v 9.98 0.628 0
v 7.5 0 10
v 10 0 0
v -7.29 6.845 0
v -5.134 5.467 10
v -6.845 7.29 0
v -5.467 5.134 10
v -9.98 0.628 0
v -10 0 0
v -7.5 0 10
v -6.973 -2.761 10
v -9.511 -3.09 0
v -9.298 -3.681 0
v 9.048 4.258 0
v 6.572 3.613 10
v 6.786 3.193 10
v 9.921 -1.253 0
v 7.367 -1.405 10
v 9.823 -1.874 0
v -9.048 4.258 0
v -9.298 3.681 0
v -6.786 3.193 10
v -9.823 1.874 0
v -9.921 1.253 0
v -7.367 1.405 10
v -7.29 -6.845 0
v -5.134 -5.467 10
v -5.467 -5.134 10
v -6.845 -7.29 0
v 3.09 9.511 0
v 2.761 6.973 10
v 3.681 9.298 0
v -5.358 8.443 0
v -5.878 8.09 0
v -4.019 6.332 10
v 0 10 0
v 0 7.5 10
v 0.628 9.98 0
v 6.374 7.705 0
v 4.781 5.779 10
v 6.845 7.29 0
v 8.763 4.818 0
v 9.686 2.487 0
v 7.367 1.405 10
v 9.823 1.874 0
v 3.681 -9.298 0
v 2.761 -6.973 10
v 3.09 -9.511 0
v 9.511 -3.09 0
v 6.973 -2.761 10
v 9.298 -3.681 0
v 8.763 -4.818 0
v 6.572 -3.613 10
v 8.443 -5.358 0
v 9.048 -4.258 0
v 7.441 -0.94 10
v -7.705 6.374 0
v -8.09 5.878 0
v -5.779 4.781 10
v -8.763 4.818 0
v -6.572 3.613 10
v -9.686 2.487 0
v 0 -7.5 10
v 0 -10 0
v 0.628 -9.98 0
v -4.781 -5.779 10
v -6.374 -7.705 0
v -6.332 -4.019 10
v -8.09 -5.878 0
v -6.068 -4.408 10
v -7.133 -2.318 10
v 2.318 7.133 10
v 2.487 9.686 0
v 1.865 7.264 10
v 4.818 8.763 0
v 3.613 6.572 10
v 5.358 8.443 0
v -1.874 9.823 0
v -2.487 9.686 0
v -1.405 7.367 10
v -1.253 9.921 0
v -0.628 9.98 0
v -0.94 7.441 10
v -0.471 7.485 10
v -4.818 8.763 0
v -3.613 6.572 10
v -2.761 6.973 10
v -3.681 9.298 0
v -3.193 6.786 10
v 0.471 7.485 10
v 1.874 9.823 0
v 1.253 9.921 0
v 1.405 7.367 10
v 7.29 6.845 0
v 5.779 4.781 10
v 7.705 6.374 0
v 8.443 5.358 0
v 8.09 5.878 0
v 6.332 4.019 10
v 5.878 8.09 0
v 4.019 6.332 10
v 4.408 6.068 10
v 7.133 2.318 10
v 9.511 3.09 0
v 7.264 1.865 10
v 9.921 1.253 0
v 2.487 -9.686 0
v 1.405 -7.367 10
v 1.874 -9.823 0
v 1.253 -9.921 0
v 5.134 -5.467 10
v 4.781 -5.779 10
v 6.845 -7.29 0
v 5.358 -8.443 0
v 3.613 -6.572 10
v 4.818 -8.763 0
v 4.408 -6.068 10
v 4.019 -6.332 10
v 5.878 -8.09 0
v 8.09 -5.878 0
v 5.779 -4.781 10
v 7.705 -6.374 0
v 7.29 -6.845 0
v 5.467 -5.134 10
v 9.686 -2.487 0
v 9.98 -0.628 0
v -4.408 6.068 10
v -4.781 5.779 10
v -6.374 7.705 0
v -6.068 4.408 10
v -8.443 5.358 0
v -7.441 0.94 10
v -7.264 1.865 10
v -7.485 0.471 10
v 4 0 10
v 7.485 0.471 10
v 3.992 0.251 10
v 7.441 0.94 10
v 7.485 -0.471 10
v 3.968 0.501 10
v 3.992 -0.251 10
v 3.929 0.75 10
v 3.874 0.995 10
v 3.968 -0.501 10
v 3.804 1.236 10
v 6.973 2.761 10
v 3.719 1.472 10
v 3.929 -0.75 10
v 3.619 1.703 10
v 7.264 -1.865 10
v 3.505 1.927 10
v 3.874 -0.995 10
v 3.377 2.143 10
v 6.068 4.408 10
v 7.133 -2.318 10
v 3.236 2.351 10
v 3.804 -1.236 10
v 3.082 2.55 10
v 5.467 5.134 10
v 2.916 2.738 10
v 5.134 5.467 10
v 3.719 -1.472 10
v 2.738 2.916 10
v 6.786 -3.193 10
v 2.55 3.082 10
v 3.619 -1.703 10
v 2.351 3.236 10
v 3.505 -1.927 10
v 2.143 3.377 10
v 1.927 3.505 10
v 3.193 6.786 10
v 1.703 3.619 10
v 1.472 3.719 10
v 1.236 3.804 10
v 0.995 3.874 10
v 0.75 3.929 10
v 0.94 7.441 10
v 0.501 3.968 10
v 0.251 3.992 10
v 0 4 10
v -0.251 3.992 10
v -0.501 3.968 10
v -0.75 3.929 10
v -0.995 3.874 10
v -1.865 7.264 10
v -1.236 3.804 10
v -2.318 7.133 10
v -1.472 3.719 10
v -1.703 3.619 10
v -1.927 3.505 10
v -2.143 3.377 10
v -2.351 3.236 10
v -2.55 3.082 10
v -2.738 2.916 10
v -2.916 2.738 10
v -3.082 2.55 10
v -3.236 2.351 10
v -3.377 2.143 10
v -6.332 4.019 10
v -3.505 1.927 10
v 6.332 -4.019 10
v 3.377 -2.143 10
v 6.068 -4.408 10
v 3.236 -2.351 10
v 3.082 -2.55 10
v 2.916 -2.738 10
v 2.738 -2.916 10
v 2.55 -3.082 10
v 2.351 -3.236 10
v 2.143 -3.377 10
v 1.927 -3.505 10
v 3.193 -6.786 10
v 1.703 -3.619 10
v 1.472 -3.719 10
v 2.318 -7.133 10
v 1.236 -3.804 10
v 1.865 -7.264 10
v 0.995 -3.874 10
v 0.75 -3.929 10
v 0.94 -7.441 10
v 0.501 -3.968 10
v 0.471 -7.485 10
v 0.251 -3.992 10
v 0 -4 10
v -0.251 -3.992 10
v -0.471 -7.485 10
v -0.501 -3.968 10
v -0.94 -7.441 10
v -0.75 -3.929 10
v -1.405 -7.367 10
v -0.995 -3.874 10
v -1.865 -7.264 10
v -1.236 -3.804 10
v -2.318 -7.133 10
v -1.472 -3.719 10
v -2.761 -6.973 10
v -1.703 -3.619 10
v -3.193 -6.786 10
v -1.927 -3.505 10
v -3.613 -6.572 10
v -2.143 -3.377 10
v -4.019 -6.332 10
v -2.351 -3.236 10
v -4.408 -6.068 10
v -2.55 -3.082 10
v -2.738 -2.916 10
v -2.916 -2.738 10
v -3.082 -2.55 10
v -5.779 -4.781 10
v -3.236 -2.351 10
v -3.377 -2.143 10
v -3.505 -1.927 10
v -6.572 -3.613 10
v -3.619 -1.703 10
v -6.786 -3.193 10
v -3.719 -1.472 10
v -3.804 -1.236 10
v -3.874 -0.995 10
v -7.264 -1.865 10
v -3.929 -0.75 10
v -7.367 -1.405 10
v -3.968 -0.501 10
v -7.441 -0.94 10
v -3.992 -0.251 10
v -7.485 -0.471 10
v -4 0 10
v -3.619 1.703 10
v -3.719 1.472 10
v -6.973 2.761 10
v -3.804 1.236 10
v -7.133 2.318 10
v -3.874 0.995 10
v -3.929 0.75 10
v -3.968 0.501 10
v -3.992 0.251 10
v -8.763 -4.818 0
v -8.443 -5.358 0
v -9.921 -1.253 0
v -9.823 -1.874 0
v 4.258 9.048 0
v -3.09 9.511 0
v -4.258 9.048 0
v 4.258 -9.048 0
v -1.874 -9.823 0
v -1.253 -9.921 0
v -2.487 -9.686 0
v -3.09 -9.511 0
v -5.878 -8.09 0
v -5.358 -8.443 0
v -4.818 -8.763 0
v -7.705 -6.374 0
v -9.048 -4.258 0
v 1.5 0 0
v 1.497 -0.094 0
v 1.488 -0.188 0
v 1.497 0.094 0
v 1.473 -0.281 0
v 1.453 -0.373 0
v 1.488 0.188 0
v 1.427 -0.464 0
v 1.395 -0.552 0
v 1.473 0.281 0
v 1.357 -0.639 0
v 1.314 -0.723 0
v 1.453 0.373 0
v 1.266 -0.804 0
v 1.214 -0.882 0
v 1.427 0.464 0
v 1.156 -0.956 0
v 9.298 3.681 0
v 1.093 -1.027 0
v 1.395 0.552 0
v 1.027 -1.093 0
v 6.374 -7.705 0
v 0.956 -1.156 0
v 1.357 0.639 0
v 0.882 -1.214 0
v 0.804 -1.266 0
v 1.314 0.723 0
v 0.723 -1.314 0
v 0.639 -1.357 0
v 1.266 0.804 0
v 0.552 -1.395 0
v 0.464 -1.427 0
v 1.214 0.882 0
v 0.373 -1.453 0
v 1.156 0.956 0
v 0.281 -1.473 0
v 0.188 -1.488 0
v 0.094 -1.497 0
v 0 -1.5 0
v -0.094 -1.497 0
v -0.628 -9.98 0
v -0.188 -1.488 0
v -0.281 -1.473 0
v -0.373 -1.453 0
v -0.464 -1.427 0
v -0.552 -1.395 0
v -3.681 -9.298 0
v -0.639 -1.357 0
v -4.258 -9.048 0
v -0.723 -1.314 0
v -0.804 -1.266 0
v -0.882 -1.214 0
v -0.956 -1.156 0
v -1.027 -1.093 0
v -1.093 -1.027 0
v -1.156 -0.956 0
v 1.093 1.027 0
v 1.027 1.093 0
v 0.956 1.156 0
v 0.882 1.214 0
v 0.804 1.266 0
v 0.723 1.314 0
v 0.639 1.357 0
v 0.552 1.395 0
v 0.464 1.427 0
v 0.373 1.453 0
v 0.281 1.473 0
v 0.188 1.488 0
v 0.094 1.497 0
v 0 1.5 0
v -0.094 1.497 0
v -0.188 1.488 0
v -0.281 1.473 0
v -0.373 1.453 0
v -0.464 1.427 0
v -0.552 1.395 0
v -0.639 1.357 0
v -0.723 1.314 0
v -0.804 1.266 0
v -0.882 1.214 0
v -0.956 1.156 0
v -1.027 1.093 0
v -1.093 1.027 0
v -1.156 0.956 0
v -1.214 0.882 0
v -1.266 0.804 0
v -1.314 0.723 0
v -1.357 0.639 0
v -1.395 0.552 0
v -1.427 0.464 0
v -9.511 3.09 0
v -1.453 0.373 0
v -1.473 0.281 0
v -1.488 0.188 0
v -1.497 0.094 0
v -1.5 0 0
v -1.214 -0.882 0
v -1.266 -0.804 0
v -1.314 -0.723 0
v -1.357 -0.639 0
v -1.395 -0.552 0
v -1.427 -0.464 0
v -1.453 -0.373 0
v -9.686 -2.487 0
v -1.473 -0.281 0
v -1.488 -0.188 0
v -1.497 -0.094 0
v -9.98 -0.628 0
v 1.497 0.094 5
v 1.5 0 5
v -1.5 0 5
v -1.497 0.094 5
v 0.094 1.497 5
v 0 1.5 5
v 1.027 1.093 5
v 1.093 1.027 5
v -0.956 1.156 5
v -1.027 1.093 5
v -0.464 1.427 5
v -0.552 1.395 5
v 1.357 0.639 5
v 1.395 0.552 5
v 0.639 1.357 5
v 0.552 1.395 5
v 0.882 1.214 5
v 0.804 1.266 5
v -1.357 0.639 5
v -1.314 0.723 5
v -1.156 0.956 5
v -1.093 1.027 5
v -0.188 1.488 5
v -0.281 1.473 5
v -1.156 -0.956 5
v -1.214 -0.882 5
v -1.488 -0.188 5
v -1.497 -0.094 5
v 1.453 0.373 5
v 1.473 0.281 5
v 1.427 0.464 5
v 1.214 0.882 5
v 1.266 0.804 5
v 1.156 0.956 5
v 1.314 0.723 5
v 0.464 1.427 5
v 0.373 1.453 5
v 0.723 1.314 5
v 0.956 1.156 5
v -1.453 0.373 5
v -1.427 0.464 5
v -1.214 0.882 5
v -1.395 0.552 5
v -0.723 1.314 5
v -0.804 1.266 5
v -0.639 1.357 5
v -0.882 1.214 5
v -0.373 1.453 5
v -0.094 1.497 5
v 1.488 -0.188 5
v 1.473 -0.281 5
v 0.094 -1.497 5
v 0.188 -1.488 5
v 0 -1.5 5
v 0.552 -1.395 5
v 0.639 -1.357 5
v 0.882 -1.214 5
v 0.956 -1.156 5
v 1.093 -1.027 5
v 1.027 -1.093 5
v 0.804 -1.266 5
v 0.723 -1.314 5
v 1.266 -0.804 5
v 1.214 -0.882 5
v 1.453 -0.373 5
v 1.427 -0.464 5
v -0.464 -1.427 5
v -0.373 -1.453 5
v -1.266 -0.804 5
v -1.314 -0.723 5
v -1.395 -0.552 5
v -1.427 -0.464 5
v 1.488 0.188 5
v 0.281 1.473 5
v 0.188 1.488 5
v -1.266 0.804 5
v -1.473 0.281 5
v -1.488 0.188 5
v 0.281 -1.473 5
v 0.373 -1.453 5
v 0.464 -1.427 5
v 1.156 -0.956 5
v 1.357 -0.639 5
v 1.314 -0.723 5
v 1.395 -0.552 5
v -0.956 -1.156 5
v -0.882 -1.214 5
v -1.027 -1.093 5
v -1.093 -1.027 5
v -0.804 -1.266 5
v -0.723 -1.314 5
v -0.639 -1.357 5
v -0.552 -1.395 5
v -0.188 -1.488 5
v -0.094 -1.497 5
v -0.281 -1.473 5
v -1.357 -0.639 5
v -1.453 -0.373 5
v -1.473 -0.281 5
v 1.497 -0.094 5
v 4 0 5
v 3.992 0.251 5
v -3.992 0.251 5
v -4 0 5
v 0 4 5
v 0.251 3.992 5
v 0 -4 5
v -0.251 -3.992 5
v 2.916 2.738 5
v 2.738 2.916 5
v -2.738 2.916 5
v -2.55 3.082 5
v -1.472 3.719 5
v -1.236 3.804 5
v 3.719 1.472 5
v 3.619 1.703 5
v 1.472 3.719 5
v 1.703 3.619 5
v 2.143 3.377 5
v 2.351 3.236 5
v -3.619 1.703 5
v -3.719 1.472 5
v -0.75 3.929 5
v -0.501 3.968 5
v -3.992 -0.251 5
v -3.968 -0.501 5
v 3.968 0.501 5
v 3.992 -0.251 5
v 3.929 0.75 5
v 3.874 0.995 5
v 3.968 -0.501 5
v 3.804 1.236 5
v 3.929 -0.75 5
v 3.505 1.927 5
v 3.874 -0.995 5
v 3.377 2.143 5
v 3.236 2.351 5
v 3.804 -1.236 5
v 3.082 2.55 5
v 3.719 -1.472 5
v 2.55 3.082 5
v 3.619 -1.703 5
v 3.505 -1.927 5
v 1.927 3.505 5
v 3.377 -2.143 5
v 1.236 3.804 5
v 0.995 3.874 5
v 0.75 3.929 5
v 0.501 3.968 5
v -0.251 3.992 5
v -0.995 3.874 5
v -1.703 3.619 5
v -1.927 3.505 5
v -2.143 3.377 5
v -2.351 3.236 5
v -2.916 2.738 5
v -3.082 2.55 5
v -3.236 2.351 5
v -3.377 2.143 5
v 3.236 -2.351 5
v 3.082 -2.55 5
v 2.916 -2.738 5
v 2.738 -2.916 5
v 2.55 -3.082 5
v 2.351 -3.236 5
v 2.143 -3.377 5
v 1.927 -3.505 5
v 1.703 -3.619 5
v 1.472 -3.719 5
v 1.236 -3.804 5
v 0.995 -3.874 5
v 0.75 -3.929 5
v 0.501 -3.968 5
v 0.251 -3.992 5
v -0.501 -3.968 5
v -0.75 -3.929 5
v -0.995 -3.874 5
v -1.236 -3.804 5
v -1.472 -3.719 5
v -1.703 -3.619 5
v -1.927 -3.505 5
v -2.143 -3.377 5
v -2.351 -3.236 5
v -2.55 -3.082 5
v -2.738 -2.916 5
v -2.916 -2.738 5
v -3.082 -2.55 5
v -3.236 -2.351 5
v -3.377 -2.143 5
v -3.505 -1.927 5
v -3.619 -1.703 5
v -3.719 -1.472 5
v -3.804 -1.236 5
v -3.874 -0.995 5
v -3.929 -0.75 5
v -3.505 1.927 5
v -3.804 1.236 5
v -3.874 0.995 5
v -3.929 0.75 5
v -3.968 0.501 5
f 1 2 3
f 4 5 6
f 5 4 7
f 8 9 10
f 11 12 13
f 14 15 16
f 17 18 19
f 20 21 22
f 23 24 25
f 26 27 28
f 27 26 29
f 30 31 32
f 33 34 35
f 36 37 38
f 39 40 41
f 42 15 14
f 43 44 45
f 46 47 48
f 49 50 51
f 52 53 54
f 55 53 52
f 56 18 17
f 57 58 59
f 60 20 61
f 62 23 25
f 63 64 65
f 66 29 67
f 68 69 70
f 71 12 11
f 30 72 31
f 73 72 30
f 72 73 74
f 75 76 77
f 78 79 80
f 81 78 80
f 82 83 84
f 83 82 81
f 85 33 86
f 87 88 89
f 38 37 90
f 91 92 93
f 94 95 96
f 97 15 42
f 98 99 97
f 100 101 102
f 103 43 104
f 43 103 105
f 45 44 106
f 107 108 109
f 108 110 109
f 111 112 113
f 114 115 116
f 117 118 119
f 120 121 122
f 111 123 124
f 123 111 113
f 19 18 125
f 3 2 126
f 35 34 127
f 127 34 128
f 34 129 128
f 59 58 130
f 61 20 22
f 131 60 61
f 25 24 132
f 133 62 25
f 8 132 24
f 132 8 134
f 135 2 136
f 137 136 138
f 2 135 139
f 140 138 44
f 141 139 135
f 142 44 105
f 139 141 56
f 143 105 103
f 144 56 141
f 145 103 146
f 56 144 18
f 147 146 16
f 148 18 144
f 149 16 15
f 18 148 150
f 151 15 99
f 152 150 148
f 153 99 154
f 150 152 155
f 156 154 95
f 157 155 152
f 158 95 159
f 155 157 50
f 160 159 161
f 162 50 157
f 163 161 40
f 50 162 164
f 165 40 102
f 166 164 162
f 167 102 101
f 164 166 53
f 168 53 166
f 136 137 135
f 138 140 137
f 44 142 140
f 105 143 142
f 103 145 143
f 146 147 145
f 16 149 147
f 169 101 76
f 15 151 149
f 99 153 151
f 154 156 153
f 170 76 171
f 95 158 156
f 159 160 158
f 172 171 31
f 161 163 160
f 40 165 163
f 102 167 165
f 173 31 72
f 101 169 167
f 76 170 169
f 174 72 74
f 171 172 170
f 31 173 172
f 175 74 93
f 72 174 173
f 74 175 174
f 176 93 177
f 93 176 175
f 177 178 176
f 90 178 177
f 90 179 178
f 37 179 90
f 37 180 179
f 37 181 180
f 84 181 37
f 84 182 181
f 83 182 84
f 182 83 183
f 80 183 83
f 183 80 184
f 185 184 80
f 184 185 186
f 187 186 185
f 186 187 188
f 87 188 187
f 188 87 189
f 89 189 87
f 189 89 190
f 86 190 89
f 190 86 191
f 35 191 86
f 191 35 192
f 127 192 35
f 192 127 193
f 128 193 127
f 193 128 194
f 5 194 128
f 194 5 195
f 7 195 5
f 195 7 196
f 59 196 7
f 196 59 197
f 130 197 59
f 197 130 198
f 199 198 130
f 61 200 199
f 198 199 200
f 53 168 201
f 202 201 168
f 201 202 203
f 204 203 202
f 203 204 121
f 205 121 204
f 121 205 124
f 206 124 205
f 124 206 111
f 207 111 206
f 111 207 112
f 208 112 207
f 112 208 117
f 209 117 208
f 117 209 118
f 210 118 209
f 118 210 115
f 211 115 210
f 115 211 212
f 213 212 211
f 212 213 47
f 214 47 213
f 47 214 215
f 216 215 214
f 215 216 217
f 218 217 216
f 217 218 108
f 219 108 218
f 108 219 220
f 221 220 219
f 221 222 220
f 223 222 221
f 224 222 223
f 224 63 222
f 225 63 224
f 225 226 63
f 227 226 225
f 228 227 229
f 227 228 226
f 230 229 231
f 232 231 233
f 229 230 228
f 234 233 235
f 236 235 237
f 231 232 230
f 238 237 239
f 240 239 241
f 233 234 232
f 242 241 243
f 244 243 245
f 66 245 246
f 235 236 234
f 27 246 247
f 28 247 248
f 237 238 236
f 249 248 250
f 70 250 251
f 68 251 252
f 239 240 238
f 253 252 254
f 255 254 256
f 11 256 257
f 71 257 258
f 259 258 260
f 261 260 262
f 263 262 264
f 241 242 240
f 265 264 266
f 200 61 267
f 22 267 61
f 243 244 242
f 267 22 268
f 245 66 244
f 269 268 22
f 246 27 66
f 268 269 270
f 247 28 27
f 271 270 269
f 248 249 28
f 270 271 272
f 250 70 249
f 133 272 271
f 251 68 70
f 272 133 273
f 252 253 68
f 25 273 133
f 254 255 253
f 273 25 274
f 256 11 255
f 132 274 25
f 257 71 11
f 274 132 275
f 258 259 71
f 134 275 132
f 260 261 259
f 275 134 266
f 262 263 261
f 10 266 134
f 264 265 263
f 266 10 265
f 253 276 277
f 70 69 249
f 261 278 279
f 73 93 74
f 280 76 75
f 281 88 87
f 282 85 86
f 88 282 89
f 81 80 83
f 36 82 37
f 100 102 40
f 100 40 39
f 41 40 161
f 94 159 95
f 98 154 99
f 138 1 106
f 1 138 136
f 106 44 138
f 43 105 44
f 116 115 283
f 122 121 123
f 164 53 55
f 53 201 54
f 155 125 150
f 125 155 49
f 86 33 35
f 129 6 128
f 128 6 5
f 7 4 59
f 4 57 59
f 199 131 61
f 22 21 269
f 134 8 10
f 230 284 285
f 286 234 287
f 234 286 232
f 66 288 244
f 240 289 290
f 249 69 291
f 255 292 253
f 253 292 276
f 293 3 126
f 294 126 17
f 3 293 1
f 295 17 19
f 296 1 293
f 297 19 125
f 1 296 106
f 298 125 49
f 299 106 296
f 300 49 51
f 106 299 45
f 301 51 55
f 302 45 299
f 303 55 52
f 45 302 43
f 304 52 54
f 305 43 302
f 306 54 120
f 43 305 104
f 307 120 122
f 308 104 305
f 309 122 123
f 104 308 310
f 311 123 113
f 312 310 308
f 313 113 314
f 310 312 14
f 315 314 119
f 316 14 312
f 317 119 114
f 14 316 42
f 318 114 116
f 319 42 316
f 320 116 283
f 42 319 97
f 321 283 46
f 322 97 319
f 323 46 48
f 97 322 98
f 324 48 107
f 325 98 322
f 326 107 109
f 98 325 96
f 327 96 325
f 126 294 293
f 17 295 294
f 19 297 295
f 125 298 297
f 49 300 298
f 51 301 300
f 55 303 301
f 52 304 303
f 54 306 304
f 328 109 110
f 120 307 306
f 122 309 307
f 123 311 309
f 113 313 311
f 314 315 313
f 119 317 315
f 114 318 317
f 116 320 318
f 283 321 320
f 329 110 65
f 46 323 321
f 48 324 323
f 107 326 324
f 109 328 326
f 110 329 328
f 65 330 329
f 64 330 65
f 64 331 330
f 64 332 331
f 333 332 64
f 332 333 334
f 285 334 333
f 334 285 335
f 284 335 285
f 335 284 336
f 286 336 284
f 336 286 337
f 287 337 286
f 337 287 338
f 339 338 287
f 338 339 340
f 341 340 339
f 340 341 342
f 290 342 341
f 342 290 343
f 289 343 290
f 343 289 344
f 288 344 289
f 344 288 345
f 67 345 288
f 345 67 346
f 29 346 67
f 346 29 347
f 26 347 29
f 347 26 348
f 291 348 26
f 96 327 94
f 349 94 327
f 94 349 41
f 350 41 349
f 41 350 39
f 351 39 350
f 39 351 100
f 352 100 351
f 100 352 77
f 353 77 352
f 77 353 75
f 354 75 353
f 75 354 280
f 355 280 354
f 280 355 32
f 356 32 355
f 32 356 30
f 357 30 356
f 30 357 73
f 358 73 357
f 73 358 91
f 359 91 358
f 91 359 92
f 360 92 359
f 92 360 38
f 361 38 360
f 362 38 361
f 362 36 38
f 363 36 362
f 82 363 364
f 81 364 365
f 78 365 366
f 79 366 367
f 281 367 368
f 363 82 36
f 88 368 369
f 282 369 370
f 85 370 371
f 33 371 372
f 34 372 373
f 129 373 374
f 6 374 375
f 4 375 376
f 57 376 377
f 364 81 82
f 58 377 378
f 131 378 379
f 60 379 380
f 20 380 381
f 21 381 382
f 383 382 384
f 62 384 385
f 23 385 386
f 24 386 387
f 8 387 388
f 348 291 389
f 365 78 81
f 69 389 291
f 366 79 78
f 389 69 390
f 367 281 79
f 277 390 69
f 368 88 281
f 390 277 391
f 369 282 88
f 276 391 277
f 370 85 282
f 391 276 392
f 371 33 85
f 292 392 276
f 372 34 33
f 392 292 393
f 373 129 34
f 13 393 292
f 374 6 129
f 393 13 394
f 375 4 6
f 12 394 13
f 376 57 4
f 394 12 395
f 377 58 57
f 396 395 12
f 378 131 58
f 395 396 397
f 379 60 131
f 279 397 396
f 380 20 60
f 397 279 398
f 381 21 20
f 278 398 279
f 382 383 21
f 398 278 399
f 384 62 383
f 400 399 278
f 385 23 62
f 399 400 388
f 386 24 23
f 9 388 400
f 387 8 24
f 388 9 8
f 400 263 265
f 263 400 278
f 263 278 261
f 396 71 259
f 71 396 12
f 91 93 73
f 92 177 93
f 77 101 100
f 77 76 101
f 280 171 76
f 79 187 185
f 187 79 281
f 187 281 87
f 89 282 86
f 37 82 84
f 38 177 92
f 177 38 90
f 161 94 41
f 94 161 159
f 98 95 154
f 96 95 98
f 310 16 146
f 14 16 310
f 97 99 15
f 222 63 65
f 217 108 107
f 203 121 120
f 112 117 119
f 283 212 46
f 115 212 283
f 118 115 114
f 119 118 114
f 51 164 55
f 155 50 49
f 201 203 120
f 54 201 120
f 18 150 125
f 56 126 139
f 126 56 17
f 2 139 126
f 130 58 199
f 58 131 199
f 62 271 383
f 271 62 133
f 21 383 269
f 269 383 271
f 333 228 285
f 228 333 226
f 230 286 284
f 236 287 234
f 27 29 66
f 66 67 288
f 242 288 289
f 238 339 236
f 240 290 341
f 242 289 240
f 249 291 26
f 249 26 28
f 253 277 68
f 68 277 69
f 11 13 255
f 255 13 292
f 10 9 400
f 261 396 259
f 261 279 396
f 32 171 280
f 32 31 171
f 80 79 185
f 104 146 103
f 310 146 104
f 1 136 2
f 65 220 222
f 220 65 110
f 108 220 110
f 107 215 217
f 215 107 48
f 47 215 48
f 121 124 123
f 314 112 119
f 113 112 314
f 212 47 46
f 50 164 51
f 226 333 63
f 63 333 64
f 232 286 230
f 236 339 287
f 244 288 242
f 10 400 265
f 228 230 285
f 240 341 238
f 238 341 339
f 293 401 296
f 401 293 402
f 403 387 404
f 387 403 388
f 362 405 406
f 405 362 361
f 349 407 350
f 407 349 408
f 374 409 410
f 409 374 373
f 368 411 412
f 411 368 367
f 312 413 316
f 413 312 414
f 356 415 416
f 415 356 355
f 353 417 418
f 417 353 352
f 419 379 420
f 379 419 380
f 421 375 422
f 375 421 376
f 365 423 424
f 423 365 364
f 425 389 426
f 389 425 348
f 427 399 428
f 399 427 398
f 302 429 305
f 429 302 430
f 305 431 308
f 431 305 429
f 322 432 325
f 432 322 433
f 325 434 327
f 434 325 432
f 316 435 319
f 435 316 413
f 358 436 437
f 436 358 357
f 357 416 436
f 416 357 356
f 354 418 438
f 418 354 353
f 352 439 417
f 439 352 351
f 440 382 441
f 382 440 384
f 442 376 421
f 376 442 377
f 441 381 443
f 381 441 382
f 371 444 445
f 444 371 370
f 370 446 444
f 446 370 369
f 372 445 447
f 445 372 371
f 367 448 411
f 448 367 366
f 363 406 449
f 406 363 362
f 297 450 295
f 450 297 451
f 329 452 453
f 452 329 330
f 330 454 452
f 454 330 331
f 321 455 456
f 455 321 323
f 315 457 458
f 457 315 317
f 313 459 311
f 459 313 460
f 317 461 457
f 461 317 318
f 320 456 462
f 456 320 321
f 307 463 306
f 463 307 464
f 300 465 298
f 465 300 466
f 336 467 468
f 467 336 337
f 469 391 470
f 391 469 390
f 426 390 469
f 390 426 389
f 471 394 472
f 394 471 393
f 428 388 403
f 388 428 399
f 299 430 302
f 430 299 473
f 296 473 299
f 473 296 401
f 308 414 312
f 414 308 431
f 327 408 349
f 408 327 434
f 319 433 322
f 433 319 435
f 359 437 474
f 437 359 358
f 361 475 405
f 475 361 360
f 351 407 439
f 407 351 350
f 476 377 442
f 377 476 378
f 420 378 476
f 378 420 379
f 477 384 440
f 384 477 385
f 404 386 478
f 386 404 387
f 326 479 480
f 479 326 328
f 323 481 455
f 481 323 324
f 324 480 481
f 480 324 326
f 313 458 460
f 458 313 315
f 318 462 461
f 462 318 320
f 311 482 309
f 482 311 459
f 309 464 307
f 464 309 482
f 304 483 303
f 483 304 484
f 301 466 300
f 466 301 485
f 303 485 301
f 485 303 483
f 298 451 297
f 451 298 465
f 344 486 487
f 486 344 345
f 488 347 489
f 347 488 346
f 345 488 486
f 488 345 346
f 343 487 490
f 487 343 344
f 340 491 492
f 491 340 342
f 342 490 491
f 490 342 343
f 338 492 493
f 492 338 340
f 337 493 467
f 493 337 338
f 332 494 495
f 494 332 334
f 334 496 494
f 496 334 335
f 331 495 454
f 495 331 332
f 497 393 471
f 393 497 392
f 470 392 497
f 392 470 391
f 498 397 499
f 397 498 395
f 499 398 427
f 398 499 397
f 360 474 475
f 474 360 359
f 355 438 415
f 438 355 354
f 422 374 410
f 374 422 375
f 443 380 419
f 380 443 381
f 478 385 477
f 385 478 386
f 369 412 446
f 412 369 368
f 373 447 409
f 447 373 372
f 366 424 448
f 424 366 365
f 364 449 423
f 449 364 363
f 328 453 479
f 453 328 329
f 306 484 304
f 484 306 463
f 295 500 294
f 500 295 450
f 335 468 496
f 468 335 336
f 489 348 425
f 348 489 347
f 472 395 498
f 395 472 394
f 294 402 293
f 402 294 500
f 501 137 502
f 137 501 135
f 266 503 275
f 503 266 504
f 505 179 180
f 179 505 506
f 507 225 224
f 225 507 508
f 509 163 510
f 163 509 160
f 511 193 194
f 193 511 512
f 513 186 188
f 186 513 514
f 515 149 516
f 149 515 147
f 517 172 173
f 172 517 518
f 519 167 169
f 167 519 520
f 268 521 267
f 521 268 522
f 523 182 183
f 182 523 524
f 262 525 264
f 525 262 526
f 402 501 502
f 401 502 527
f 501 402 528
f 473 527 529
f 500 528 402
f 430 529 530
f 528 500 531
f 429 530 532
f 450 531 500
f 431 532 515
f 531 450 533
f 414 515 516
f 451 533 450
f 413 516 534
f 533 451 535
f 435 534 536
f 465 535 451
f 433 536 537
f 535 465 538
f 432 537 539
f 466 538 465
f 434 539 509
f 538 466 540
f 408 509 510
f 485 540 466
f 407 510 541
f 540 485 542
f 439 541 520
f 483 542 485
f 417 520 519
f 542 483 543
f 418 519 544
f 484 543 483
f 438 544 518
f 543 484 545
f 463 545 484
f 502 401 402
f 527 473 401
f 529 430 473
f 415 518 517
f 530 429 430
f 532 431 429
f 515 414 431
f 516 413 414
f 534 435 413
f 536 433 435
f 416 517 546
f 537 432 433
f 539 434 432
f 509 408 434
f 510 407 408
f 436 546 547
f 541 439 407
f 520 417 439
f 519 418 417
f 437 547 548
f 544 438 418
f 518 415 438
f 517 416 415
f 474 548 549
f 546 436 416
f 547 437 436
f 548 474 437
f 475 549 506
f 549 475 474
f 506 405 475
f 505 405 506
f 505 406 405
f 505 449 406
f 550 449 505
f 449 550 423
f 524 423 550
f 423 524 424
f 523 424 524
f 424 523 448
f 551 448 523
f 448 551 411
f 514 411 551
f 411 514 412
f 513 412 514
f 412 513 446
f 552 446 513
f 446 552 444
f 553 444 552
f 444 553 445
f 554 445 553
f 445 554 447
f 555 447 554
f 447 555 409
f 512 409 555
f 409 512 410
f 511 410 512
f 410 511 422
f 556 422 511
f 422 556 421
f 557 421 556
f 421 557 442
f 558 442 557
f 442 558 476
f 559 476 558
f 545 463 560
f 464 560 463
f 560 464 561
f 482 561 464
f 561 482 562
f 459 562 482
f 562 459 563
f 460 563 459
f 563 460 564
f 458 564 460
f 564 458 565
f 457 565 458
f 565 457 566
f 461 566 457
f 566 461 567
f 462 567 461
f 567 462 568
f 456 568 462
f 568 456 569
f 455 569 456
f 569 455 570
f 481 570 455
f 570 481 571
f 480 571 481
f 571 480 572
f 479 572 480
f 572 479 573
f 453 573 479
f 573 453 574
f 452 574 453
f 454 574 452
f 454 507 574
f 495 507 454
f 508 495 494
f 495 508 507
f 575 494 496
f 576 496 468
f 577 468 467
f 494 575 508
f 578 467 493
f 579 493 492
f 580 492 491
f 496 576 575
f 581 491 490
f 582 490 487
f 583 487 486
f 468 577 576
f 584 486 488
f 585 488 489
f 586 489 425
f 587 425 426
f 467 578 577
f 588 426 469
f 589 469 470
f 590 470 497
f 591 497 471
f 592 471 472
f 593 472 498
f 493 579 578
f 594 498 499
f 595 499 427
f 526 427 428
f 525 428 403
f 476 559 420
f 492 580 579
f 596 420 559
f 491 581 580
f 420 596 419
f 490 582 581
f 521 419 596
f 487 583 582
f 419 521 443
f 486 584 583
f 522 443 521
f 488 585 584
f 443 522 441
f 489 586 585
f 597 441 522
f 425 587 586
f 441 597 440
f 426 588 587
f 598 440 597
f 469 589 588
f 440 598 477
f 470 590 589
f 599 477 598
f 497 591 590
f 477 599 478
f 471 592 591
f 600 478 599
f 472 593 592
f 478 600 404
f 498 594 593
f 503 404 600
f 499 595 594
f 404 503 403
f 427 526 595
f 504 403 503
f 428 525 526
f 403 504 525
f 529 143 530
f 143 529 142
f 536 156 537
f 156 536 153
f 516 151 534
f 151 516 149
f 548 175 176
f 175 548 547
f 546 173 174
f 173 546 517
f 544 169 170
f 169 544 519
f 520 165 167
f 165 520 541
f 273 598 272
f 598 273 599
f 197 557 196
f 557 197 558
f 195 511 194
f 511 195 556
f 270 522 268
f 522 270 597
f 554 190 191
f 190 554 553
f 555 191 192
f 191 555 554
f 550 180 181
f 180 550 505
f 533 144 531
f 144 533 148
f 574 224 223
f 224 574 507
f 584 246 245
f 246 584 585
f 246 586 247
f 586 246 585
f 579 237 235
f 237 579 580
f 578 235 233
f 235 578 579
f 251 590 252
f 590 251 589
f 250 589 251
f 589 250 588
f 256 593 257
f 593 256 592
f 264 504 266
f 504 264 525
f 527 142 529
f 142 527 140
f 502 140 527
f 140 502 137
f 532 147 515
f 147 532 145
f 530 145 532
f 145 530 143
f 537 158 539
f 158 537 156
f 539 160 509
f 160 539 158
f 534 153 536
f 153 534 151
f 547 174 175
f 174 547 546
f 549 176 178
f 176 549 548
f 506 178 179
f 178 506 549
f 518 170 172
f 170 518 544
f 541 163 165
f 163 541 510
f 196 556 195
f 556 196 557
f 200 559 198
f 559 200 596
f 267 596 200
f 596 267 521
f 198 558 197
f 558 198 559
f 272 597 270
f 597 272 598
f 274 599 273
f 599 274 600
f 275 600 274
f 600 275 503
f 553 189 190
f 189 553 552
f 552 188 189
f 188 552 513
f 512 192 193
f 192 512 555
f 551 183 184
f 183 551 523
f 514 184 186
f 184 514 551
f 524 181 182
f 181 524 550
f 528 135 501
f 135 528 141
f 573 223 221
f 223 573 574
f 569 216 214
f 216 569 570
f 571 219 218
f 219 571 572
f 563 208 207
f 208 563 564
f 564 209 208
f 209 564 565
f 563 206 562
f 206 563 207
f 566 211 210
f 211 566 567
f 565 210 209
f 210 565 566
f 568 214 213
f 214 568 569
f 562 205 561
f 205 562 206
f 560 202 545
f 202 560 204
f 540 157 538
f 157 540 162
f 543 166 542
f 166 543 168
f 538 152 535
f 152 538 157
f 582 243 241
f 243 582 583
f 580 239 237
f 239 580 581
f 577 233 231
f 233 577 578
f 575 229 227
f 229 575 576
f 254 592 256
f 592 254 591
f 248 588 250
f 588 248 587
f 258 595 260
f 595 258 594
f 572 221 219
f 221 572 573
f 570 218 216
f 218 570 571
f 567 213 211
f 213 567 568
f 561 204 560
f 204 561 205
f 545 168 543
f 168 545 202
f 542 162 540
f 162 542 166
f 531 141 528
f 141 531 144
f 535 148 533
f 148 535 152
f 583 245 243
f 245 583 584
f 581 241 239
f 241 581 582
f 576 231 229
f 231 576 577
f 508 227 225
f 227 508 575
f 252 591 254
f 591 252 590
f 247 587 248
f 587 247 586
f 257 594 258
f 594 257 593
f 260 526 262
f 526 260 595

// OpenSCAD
// yes, here I turned to chatGPT for help because I was too lazy to make this model, I made the rest of the models myself

hole_diameter = 3;

$fn=100; // сглаживание

module leg() {
    difference() {
        // Основная форма - усечённый конус
        cylinder(h=10, d1=20, d2=15);

        // Сквозное отверстие 3 мм
        translate([0,0,-1]) // немного вниз, чтобы точно пробило
            cylinder(h=12, d=hole_diameter);

        // Углубление сверху (8 мм диаметр, глубина 5 мм)
        translate([0,0,5])  // от верхней грани (высота 10)
            cylinder(h=5+6, d=8);
    }
}

leg();
